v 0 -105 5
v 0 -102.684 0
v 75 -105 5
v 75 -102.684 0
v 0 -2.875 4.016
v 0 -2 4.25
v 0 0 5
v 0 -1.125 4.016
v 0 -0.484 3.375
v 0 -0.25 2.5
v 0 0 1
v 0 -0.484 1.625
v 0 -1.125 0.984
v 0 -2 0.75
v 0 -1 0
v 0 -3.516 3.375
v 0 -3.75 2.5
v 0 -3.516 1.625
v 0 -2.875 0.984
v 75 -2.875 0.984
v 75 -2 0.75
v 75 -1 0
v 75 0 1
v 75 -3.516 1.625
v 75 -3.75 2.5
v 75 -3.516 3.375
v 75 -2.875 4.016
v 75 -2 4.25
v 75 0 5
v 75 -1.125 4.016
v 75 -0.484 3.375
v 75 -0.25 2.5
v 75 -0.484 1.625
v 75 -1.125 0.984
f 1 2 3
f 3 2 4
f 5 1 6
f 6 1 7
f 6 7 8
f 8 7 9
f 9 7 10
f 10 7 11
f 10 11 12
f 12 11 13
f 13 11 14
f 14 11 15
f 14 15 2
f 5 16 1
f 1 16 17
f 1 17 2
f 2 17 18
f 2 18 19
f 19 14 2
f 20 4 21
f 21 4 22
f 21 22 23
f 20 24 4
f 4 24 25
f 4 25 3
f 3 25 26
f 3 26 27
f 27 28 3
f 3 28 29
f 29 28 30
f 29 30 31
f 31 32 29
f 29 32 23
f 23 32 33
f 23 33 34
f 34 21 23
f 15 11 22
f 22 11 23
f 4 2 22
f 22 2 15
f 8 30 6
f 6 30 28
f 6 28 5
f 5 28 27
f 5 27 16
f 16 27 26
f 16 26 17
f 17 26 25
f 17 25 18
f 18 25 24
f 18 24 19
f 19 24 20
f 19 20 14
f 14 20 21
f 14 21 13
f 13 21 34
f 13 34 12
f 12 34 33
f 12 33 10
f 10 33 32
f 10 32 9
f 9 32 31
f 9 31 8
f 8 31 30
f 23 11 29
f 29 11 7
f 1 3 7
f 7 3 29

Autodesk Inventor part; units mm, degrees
ref_plane "YZ Plane" through (0, 0, 0) normal (1, 0, 0) x (0, 1, 0)
ref_plane "XZ Plane" through (0, 0, 0) normal (0, 1, 0) x (-1, 0, 0)
ref_plane "XY Plane" through (0, 0, 0) normal (0, 0, 1) x (1, 0, 0)
sketch "Sketch1" plane through (0, 0, 0) normal (0, 0, 1) x (1, 0, 0)
  line L0 (0, 0) -> (75, 0)
  line L1 (75, 0) -> (75, -105)
  line L2 (75, -105) -> (0, -105)
  line L3 (0, -105) -> (0, 0)
  dimension "d0" = 75
  dimension "d1" = 105
extrude "Extrusion1" add sketch "Sketch1" along normal blind 5
sketch "Sketch2" plane through (75, -105, 0) normal (1, 0, 0) x (0, 0, -1)
  line L0 (-5, 0) -> (-5, 105) projected
  line L1 (0, 0) -> (0, 105) projected
  line L2 (-5, 105) -> (0, 105)
  line L3 (0, 105) -> (0, 102)
  line L4 (0, 102) -> (-5, 102)
  line L5 (-5, 102) -> (-5, 105)
  circle A0 centre (-2.5, 103) radius 1.75
  line L6 (0, 105) -> (-1, 105)
  line L7 (0, 105) -> (-5, 105) projected
  line L8 (0, 105) -> (0, 104)
  line L9 (-1, 105) -> (0, 104)
  point P0 (-1, 105)
  point P1 (0, 104)
  point P2 (-2.5, 105)
  point P3 (-2.5, 105)
  dimension "d4" = 3
  dimension "d5" = 3.5
  dimension "d6" = 1
  dimension "d7" = 1
  dimension "d14" = 2
extrude "Extrusion2" cut sketch "Sketch2" against normal through all contours A0 L4 | L4 A0
extrude "Extrusion3" cut sketch "Sketch2" against normal through all contours L2 L1 L9
sketch "Sketch3" plane through (75, -105, 5) normal (1, 0, 0) x (0, 0, -1)
  line L0 (0, 105) -> (0, 0) projected
  line L1 (5, 104) -> (5, 0) projected
  line L2 (0, 0) -> (5, 2.3157)
  line L3 (5, 0) -> (5, 104) projected
  line L4 (5, 0) -> (0, 0) projected
  line L5 (5, 2.3157) -> (5, 0)
  line L6 (5, 0) -> (0, 0)
  point P0 (5, 105)
extrude "Extrusion4" cut sketch "Sketch3" against normal through all
properties part number "stojka - správná verze"
